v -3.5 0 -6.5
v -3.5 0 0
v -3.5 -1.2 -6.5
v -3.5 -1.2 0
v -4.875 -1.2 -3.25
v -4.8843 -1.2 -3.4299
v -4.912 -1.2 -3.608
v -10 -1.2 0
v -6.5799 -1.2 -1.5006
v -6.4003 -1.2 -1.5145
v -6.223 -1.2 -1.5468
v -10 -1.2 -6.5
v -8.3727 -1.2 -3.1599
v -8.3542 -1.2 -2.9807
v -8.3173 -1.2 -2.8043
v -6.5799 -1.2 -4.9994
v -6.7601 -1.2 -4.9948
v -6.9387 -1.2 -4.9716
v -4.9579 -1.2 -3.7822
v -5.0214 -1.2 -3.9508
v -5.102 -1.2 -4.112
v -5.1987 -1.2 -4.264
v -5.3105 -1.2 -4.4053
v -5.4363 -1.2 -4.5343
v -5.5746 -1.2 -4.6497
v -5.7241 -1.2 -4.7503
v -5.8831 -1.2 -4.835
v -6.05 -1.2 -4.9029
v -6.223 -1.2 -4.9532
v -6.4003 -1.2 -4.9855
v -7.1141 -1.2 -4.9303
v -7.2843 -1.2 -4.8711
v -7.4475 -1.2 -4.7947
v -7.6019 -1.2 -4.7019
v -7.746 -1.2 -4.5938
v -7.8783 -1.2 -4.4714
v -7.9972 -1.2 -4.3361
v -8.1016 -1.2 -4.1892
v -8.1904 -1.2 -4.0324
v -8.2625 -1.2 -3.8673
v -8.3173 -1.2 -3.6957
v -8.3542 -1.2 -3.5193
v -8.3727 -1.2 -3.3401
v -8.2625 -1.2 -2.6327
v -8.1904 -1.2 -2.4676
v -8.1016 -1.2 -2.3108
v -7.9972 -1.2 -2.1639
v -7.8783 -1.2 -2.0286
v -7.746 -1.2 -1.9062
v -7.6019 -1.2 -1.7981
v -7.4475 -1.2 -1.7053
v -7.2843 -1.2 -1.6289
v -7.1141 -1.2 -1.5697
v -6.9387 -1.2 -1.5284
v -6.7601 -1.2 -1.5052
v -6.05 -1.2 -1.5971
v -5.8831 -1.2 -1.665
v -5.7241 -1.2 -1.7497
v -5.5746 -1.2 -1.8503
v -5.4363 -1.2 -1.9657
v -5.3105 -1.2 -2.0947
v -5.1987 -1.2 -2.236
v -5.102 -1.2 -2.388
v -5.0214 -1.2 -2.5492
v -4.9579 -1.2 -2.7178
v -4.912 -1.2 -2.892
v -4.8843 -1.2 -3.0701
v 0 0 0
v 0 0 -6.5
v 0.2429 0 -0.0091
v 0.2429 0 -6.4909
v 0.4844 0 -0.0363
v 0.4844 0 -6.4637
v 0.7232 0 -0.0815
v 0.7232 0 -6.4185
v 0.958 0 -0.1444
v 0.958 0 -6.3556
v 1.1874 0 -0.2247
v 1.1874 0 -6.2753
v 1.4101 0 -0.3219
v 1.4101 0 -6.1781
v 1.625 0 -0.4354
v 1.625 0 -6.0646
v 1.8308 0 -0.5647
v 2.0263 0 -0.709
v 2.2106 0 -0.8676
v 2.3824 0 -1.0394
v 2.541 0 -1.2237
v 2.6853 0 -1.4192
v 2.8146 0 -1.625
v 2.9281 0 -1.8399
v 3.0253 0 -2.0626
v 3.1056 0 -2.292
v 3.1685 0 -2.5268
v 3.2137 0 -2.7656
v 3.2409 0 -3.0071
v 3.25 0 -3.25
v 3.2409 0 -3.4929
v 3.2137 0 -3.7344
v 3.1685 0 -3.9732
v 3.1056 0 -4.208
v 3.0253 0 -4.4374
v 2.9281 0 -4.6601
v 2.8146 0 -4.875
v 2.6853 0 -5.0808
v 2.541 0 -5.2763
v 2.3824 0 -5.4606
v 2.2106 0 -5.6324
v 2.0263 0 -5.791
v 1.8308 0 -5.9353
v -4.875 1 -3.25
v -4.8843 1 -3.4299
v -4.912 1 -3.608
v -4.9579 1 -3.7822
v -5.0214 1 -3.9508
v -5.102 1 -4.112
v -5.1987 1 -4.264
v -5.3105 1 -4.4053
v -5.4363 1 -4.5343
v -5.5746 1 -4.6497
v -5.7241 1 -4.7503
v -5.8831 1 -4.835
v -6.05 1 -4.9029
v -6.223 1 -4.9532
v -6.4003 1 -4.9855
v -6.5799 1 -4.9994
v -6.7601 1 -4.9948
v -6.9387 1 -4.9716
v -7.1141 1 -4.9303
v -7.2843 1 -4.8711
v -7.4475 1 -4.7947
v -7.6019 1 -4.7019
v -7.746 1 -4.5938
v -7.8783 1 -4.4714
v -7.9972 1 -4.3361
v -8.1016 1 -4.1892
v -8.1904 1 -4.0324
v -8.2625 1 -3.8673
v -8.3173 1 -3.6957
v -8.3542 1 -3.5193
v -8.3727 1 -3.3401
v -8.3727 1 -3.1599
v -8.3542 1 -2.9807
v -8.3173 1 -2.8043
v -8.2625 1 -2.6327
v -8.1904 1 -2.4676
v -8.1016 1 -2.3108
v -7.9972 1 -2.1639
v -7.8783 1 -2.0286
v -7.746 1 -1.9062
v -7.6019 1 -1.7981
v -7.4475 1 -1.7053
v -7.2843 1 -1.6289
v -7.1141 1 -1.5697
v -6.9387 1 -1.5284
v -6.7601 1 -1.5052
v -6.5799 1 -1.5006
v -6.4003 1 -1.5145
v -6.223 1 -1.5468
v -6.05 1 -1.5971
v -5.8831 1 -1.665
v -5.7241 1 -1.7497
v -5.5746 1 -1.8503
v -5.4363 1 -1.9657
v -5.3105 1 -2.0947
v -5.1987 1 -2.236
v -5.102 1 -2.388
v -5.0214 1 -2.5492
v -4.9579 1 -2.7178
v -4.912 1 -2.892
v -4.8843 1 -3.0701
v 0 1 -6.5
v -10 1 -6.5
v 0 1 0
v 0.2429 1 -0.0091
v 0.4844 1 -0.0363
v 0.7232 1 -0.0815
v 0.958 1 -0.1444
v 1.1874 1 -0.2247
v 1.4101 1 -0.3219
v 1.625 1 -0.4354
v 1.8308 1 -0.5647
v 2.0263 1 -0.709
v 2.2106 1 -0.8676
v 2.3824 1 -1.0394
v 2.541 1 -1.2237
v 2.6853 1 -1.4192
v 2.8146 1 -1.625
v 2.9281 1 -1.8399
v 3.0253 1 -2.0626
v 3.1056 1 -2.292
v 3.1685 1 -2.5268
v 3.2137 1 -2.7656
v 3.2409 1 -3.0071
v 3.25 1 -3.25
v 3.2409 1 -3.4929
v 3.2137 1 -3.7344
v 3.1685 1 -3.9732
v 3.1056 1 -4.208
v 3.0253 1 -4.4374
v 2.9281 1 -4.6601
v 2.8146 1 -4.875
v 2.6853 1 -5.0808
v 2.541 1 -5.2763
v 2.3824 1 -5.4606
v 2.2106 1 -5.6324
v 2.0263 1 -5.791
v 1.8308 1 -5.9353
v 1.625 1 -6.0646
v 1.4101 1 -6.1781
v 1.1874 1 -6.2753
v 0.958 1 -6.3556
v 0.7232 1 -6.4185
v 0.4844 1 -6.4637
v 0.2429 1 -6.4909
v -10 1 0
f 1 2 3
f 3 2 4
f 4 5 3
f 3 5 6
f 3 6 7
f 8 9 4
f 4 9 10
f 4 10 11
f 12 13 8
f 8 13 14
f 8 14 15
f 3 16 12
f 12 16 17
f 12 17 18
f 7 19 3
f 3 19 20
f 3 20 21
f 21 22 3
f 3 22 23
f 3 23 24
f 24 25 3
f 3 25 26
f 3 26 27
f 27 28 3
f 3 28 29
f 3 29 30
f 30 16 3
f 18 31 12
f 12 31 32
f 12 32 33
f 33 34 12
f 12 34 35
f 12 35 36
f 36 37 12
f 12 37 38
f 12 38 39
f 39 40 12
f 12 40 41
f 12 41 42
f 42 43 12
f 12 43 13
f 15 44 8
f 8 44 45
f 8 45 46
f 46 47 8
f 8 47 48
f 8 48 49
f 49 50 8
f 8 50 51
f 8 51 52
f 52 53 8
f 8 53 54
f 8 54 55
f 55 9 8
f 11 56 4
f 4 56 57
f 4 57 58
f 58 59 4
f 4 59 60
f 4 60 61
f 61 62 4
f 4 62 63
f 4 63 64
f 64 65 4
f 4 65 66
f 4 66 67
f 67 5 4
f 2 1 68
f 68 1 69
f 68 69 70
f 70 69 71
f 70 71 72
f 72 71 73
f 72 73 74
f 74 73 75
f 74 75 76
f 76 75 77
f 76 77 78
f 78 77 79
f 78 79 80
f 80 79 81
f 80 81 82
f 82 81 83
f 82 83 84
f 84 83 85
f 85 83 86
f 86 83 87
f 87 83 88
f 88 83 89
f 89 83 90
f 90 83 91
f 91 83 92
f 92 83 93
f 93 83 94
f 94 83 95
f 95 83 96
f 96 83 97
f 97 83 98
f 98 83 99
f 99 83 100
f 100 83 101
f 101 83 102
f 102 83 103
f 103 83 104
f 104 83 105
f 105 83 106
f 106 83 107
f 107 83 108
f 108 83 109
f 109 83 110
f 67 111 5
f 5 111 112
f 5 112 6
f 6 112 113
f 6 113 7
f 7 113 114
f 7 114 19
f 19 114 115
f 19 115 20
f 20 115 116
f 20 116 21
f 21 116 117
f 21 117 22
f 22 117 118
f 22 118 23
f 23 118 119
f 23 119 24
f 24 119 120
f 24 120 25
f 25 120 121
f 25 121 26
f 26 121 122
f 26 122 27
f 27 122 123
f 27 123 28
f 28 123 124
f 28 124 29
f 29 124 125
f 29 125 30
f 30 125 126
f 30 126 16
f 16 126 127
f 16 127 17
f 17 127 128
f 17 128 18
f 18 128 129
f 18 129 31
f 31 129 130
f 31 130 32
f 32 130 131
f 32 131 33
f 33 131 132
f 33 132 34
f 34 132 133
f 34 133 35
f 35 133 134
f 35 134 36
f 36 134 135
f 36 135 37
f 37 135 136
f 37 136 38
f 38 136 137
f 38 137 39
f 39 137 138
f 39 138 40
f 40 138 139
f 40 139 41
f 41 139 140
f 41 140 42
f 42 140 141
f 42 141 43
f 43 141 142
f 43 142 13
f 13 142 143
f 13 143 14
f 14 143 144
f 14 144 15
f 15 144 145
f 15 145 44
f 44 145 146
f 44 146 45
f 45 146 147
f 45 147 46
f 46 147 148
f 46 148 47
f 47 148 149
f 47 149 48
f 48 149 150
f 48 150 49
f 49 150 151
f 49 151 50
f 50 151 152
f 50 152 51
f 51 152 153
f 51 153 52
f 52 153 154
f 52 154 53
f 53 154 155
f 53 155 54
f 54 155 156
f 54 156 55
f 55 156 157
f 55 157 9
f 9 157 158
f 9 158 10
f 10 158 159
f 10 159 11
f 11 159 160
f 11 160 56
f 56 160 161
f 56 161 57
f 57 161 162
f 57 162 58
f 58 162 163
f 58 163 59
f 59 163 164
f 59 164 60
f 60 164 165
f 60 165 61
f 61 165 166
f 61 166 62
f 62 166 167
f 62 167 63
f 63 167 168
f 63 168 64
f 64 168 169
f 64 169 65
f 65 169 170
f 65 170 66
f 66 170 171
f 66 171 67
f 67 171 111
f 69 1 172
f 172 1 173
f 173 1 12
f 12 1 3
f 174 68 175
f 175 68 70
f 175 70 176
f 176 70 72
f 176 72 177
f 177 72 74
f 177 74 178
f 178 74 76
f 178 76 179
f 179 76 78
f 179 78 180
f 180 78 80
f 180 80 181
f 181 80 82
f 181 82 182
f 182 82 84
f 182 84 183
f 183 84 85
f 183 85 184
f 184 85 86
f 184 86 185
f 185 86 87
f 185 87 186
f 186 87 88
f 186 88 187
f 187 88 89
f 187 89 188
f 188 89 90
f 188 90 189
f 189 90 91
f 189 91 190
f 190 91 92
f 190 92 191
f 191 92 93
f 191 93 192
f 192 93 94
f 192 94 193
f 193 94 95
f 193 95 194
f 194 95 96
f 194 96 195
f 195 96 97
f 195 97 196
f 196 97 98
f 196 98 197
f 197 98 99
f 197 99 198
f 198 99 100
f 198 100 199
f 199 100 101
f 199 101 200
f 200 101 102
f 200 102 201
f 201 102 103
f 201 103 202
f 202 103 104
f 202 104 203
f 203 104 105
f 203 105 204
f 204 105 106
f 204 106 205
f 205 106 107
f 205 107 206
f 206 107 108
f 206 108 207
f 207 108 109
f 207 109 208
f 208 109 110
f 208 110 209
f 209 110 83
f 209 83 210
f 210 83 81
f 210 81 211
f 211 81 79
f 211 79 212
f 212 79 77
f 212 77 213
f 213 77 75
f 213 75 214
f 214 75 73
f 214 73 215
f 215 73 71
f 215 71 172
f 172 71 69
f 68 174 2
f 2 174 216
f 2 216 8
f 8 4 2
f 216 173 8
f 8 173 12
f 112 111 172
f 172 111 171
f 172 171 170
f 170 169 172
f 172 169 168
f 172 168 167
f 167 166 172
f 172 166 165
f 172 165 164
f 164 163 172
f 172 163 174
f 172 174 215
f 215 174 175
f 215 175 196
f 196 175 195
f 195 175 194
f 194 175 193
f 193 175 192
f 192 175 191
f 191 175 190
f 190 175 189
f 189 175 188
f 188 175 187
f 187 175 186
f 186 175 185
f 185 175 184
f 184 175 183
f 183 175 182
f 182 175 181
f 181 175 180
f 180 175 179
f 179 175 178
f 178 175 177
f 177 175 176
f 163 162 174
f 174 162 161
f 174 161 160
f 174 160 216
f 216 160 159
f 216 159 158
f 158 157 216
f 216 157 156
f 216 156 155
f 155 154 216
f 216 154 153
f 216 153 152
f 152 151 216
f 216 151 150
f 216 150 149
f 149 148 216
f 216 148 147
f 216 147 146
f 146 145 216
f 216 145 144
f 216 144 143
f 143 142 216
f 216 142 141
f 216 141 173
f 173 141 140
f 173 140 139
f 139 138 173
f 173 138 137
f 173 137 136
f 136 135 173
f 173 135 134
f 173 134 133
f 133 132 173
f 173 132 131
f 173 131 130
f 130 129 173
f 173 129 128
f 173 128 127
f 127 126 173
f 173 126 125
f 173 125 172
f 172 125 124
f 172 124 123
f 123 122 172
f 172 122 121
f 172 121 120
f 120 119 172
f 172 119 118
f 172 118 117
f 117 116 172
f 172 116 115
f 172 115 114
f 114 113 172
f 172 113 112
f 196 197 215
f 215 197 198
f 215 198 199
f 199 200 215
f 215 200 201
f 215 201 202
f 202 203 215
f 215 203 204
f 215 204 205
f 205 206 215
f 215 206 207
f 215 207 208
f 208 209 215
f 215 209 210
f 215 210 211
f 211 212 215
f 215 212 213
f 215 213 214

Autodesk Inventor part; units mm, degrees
ref_plane "YZ Plane" through (0, 0, 0) normal (1, 0, 0) x (0, 1, 0)
ref_plane "XZ Plane" through (0, 0, 0) normal (0, 1, 0) x (-1, 0, 0)
ref_plane "XY Plane" through (0, 0, 0) normal (0, 0, 1) x (1, 0, 0)
sketch "Sketch1" plane through (0, 0, 0) normal (0, 1, 0) x (-1, 0, 0)
  line L0 (0, 0) -> (10, 0)
  line L1 (10, 0) -> (10, -6.5)
  line L2 (10, -6.5) -> (0, -6.5)
  line L3 (0, -6.5) -> (0, 0)
  arc A0 (0, 0) -> (0, -6.5) centre (0, -3.25) ccw
  dimension "d1" = 6.5
  dimension "d2" = 10
extrude "Extrusion1" add sketch "Sketch1" along normal blind 1
sketch "Sketch2" plane through (0, 0, 0) normal (0, -1, 0) x (1, 0, 0)
  line L0 (-10, -6.5) -> (-10, 0) construction
  line L1 (0, -6.5) -> (-10, -6.5) construction
  arc A0 (0, -6.5) -> (0, 0) centre (0, -3.25) ccw construction
  line L2 (-10, 0) -> (0, 0) construction
  line L3 (-10, 0) -> (-3.5, 0) construction
  line L4 (-3.5, 0) -> (-3.5, -6.5) construction
  line L5 (-3.5, -6.5) -> (-10, -6.5) construction
  line L6 (-10, -6.5) -> (-10, 0) construction
  line L7 (-10, -3.25) -> (-6.625, -3.25) construction
  circle A1 centre (-6.625, -3.25) radius 1.75
  dimension "d5" = 6.5
  dimension "d6" = 3.375
  dimension "d7" = 3.5
extrude "Extrusion2" cut sketch "Sketch2" against normal blind 1
sketch "Sketch3" plane through (0, 0, 0) normal (0, -1, 0) x (1, 0, 0)
  circle A0 centre (-6.625, -3.25) radius 1.75 construction
  line L0 (-10, -6.5) -> (-10, 0) construction
  line L1 (0, -6.5) -> (-10, -6.5) construction
  arc A1 (0, -6.5) -> (0, 0) centre (0, -3.25) ccw construction
  line L2 (-10, 0) -> (0, 0) construction
  circle A2 centre (0, -3.25) radius 3.25 construction
  line L3 (-10, -6.5) -> (-3.5, -6.5)
  line L4 (-3.5, -6.5) -> (-3.5, 0)
  line L5 (-3.5, 0) -> (-10, 0)
  line L6 (-10, 0) -> (-10, -6.5)
  circle A3 centre (-6.625, -3.25) radius 1.75
  dimension "d10" = 6.5
extrude "Extrusion3" add sketch "Sketch3" along normal blind 1.2
properties part number "pinub"
